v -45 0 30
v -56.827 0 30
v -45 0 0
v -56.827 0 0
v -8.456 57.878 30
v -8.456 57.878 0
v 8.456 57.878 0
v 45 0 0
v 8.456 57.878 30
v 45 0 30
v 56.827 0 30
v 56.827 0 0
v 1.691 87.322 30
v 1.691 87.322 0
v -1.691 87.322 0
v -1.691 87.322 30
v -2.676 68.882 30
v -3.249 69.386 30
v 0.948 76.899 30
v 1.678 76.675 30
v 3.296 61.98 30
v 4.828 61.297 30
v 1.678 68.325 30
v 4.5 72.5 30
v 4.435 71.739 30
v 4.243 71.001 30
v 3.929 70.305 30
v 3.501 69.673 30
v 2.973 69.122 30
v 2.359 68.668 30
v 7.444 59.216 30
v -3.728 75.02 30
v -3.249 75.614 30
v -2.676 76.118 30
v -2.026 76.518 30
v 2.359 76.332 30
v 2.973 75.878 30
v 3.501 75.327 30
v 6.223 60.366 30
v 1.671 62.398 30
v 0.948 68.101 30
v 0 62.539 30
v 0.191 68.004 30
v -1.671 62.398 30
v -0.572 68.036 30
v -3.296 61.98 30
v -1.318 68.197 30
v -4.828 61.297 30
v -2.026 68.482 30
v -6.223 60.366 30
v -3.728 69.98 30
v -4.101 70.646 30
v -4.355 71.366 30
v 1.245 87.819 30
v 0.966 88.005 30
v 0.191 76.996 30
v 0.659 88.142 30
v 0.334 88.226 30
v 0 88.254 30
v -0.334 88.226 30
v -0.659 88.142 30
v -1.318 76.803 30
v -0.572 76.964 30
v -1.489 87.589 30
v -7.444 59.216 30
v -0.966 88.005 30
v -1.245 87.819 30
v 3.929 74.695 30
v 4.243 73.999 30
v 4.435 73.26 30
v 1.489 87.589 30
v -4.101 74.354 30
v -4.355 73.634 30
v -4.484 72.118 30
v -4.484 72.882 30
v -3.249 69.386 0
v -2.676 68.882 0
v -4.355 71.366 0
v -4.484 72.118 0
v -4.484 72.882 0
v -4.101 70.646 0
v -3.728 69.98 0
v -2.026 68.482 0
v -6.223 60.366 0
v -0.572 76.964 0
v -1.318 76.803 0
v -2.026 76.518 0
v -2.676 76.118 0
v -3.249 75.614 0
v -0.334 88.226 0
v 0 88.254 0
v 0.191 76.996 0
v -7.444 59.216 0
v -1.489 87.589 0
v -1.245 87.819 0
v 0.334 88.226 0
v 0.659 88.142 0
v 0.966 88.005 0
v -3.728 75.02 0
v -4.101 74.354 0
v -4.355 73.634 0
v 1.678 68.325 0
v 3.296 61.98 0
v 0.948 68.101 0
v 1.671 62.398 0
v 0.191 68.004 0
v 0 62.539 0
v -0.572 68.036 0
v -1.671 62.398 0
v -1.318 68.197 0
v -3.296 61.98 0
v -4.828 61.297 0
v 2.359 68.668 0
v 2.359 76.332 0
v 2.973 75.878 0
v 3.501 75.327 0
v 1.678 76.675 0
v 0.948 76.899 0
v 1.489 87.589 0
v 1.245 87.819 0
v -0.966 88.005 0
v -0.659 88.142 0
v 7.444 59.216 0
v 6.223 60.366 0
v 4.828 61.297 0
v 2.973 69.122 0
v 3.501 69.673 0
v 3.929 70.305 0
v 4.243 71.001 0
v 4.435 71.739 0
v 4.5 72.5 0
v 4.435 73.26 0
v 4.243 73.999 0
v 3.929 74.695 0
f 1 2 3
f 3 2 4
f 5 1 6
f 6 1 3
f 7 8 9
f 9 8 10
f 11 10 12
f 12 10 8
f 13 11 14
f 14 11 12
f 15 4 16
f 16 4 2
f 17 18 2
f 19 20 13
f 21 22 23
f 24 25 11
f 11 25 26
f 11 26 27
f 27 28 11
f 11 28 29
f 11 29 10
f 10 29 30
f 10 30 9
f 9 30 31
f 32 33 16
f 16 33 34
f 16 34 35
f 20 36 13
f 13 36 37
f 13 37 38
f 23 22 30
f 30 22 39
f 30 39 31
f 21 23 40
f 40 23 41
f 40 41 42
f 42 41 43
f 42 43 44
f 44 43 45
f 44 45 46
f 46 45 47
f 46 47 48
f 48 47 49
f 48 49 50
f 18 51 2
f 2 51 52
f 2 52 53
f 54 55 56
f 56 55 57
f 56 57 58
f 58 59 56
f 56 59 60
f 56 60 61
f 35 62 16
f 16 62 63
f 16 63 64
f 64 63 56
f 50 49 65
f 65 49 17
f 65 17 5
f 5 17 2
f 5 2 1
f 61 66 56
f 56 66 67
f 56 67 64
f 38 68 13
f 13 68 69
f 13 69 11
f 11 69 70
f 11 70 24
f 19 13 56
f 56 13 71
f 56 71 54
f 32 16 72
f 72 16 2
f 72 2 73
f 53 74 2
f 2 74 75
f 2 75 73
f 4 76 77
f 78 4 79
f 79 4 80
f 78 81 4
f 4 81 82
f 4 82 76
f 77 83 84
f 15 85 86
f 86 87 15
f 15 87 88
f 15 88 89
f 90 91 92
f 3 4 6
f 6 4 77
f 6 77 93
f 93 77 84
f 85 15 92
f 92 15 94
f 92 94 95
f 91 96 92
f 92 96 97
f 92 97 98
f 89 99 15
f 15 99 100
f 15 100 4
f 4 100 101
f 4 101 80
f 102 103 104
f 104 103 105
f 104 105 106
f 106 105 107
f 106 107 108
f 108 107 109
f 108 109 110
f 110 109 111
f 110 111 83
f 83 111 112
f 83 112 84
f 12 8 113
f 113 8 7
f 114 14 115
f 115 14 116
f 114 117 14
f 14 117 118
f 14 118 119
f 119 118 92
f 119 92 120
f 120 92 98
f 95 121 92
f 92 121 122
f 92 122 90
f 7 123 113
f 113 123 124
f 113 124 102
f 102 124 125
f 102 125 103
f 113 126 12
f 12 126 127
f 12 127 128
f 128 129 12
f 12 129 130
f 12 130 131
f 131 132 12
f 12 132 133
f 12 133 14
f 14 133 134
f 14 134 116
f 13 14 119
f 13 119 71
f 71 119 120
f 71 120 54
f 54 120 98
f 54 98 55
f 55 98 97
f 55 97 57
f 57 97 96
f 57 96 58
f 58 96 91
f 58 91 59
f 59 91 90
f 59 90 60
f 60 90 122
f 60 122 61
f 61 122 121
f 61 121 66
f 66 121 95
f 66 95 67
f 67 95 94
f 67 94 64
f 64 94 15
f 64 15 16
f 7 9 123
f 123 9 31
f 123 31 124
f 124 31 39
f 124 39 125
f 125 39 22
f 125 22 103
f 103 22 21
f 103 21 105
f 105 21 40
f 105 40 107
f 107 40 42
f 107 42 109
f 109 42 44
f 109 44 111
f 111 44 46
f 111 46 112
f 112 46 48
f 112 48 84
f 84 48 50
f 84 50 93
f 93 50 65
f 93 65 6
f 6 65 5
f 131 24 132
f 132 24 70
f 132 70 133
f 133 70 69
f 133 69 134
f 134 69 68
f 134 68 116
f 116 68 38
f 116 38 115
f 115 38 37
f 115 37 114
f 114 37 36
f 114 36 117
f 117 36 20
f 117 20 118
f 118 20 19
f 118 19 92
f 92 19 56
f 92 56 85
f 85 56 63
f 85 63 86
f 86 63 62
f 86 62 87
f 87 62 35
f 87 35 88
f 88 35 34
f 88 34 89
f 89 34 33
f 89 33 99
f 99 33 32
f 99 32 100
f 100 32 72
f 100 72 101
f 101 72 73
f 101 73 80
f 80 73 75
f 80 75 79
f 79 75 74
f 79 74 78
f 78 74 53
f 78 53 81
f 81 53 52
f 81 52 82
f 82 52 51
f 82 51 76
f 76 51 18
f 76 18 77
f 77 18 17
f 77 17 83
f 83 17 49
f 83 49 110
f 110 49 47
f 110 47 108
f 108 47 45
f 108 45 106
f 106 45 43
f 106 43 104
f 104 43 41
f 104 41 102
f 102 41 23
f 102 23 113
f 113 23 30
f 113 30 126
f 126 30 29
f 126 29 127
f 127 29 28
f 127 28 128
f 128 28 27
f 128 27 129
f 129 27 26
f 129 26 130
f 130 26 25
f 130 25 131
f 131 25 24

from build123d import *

# Parameters (mm, degrees)
BOSS_EXTRUDE1_DEPTH = 30
FILLET1_R           = 2
FILLET2_R           = 10
SKETCH2_R           = 4.5
CUT_EXTRUDE1_DEPTH  = 31


with BuildPart() as part:
    # Sketch1 → Boss-Extrude1 (new body)
    with BuildSketch(Plane.XY):
        Polygon((-56.826553722, 0), (0, 90), (56.826553722, 0), (45, 0), (0, 71.26949876), (-45, 0), align=None)
    extrude(amount=BOSS_EXTRUDE1_DEPTH)

    # Fillet1
    fillet1_edges = [part.edges().sort_by_distance(p)[0] for p in [
        (0, 90, 15),
    ]]
    fillet(fillet1_edges, radius=FILLET1_R)

    # Fillet2
    fillet2_edges = [part.edges().sort_by_distance(p)[0] for p in [
        (0, 71.26949876, 15),
    ]]
    fillet(fillet2_edges, radius=FILLET2_R)

    # Sketch2 → Cut-Extrude1 (cut, through all)
    with BuildSketch(Plane.XY.offset(30)):
        with Locations((0, 72.5)):
            Circle(SKETCH2_R)
    extrude(amount=-CUT_EXTRUDE1_DEPTH, mode=Mode.SUBTRACT)


solid = part.part
